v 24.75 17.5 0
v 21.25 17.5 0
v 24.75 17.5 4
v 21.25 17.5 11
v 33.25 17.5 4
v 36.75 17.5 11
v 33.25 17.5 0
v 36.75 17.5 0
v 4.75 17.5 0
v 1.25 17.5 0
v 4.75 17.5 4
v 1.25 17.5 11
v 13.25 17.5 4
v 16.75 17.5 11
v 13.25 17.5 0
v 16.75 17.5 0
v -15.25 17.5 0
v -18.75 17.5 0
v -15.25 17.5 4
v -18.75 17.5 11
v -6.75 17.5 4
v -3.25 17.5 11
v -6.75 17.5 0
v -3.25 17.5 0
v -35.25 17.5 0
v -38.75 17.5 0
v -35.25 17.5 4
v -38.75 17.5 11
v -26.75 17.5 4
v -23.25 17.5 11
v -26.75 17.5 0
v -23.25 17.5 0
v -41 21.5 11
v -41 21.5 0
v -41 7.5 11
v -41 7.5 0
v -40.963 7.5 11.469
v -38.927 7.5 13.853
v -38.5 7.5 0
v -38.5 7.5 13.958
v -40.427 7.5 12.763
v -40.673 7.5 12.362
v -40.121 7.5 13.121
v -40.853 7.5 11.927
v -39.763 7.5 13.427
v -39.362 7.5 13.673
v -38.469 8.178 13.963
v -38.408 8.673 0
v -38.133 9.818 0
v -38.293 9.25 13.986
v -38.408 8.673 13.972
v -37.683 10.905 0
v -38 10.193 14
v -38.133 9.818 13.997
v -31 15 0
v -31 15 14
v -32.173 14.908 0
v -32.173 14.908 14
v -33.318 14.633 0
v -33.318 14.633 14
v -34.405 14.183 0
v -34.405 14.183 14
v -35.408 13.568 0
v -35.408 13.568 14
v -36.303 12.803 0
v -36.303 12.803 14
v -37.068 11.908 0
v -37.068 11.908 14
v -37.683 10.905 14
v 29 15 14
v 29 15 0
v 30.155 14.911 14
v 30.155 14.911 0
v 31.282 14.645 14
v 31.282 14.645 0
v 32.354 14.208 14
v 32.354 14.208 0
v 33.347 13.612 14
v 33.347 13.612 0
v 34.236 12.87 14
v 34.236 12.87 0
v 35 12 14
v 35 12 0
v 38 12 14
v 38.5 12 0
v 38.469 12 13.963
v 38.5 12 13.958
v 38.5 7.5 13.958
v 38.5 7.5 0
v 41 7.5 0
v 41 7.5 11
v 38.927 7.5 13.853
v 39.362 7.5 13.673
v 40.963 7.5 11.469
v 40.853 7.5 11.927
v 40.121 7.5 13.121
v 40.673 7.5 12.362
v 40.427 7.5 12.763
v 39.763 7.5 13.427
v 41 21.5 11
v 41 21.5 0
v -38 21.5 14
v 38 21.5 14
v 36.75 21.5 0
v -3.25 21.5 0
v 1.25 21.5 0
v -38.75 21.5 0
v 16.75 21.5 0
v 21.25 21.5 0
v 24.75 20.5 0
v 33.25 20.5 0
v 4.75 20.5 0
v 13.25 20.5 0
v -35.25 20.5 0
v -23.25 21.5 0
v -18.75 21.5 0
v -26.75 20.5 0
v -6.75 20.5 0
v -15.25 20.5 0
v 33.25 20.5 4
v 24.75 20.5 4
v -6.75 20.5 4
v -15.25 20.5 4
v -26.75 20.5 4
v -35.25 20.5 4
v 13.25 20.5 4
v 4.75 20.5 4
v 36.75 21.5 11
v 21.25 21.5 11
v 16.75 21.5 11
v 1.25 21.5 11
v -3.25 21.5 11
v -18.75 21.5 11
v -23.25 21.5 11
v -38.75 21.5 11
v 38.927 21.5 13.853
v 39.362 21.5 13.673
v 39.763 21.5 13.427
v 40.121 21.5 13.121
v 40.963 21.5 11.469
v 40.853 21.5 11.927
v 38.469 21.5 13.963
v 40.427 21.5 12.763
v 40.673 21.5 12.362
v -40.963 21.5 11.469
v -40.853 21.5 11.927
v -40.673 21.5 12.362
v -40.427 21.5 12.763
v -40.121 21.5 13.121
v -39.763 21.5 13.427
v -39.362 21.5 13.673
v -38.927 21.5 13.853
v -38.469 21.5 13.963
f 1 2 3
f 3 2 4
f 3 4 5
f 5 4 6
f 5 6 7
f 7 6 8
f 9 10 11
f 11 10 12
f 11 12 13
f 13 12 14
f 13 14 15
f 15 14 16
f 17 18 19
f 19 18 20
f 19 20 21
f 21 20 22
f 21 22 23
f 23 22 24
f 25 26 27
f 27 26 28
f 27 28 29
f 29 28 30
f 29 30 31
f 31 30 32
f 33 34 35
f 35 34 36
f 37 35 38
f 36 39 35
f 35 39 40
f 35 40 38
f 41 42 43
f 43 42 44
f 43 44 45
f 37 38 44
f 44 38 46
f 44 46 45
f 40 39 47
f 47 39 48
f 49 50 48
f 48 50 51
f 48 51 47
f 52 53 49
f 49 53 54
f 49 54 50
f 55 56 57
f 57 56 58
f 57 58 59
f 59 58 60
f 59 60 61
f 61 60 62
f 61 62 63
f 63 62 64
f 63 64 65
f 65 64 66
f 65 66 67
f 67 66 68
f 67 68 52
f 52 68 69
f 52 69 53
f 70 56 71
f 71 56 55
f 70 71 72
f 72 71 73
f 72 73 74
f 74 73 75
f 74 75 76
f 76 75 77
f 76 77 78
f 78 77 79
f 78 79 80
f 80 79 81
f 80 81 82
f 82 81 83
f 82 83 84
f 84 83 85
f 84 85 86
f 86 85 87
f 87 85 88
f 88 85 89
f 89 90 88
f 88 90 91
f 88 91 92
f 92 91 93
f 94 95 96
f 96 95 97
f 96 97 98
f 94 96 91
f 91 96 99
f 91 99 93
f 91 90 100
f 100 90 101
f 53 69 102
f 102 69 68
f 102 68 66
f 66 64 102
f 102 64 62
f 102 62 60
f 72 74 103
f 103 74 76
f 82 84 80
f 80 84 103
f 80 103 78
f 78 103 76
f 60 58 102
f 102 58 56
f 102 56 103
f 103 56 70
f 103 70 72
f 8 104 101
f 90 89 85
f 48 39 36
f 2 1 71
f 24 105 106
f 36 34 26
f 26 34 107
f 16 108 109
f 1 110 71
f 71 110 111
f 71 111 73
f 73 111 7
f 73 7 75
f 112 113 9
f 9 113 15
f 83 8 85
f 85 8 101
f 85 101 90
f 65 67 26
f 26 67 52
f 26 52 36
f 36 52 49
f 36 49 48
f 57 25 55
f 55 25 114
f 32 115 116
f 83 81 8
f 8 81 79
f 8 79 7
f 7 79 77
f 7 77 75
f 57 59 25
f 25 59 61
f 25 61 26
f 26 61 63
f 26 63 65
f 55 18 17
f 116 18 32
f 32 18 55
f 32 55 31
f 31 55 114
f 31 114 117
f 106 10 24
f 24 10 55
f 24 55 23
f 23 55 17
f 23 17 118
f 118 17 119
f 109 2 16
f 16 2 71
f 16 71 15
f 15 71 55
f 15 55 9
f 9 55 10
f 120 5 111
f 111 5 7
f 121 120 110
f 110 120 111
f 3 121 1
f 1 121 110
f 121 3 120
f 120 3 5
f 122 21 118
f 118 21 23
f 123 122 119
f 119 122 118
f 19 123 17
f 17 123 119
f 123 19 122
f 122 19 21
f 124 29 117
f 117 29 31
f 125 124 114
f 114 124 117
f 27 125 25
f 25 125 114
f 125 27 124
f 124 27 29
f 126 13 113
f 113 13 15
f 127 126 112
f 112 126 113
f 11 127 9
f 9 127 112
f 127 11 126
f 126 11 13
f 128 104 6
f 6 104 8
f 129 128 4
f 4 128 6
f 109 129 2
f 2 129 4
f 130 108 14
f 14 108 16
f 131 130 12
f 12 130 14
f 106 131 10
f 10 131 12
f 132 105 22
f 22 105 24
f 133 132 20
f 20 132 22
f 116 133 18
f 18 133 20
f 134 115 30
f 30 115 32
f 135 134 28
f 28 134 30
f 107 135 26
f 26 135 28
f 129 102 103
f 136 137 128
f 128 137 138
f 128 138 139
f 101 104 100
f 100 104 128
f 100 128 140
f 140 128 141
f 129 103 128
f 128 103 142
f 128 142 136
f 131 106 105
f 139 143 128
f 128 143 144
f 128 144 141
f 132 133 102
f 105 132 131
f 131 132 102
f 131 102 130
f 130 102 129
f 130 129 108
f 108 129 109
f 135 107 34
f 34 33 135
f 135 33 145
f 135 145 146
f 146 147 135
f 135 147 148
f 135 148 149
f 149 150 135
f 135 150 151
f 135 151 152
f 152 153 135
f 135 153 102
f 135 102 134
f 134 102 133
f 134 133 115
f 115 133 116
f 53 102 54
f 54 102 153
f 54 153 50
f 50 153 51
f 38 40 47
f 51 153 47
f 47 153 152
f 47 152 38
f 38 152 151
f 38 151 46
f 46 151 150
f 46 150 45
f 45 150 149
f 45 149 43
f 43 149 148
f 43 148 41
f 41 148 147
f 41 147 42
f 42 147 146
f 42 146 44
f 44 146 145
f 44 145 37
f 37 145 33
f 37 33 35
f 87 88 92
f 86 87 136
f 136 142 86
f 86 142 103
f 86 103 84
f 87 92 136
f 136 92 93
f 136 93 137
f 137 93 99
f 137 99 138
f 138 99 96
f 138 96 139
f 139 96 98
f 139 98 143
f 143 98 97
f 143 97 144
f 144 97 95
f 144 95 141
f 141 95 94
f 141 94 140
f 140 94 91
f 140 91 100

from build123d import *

# Parameters (mm, degrees)
SALIENTE_EXTRUIR1_DEPTH = 14
CROQUIS2_W              = 8.5
CROQUIS2_H              = 3
SALIENTE_EXTRUIR2_DEPTH = 4
SALIENTE_EXTRUIR3_DEPTH = 4
REDONDEO1_R             = 3


with BuildPart() as part:
    # Croquis1 → Saliente-Extruir1 (new body)
    with BuildSketch(Plane.XY):
        with BuildLine():
            Line((-38.5, 7.5), (-41, 7.5))
            Line((-41, 7.5), (-41, 17.5))
            Line((-41, 17.5), (41, 17.5))
            Line((41, 17.5), (41, 7.5))
            Line((41, 7.5), (38.5, 7.5))
            Line((38.5, 7.5), (38.5, 12))
            Line((38.5, 12), (35, 12))
            ThreePointArc((35, 12), (32.354101966, 14.208203932), (29, 15))
            Line((29, 15), (-31, 15))
            ThreePointArc((-31, 15), (-36.303300859, 12.803300859), (-38.5, 7.5))
        make_face()
    extrude(amount=SALIENTE_EXTRUIR1_DEPTH)

    # Croquis2 → Saliente-Extruir2 (add)
    with BuildSketch(Plane.XY):
        with Locations((29, 19)):
            Rectangle(CROQUIS2_W, CROQUIS2_H)
        with Locations((-31, 19)):
            Rectangle(CROQUIS2_W, CROQUIS2_H)
        with Locations((-11, 19)):
            Rectangle(CROQUIS2_W, CROQUIS2_H)
        with Locations((9, 19)):
            Rectangle(CROQUIS2_W, CROQUIS2_H)
    extrude(amount=SALIENTE_EXTRUIR2_DEPTH)

    # Croquis3 → Saliente-Extruir3 (add)
    with BuildSketch(Plane(origin=(0, 17.5, 0), x_dir=(1, 0, 0), z_dir=(0, 1, 0))):
        Polygon((-41, -14), (41, -14), (41, 0), (36.75, 0), (36.75, -11), (21.25, -11), (21.25, 0), (16.75, 0), (16.75, -11), (1.25, -11), (1.25, 0), (-3.25, 0), (-3.25, -11), (-18.75, -11), (-18.75, 0), (-23.25, 0), (-23.25, -11), (-38.75, -11), (-38.75, 0), (-41, 0), align=None)
    extrude(amount=SALIENTE_EXTRUIR3_DEPTH)

    # Redondeo1
    redondeo1_edges = [part.edges().sort_by_distance(p)[0] for p in [
        (-41, 14.5, 14),
        (41, 14.5, 14),
    ]]
    fillet(redondeo1_edges, radius=REDONDEO1_R)


solid = part.part
